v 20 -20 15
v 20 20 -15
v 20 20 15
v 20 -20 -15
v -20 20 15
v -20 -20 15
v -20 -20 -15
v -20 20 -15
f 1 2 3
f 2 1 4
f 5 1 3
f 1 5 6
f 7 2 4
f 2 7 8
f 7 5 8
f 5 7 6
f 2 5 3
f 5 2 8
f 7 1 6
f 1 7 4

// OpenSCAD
// Parameters
block_size = [40, 40, 30]; // Width, Depth, Height of the block
pyramid_base = 10;         // Base width of each pyramid
pyramid_height = 10;       // Height of each pyramid
spacing = 20;              // Distance between centers of pyramids

module hollowed_block() {
    difference() {
        // Main solid block
        cube(block_size, center = true);

        // Pyramidal recesses
        for (x = [-spacing/2, spacing/2])
            for (y = [-spacing/2, spacing/2])
                translate([x, y, block_size[2]/2])
                    rotate([0, 0, 0])
                        pyramid_recess();
    }
}

// Pyramid-shaped recess module
module pyramid_recess() {
    translate([0, 0, 0])
        rotate([180, 0, 0]) // Invert the pyramid to recess into the block
            polyhedron(
                points=[
                    [ -pyramid_base/2, -pyramid_base/2, 0],
                    [  pyramid_base/2, -pyramid_base/2, 0],
                    [  pyramid_base/2,  pyramid_base/2, 0],
                    [ -pyramid_base/2,  pyramid_base/2, 0],
                    [ 0, 0, pyramid_height]
                ],
                faces=[
                    [0, 1, 4],
                    [1, 2, 4],
                    [2, 3, 4],
                    [3, 0, 4],
                    [0, 1, 2, 3]
                ]
            );
}

// Render the model
hollowed_block();
